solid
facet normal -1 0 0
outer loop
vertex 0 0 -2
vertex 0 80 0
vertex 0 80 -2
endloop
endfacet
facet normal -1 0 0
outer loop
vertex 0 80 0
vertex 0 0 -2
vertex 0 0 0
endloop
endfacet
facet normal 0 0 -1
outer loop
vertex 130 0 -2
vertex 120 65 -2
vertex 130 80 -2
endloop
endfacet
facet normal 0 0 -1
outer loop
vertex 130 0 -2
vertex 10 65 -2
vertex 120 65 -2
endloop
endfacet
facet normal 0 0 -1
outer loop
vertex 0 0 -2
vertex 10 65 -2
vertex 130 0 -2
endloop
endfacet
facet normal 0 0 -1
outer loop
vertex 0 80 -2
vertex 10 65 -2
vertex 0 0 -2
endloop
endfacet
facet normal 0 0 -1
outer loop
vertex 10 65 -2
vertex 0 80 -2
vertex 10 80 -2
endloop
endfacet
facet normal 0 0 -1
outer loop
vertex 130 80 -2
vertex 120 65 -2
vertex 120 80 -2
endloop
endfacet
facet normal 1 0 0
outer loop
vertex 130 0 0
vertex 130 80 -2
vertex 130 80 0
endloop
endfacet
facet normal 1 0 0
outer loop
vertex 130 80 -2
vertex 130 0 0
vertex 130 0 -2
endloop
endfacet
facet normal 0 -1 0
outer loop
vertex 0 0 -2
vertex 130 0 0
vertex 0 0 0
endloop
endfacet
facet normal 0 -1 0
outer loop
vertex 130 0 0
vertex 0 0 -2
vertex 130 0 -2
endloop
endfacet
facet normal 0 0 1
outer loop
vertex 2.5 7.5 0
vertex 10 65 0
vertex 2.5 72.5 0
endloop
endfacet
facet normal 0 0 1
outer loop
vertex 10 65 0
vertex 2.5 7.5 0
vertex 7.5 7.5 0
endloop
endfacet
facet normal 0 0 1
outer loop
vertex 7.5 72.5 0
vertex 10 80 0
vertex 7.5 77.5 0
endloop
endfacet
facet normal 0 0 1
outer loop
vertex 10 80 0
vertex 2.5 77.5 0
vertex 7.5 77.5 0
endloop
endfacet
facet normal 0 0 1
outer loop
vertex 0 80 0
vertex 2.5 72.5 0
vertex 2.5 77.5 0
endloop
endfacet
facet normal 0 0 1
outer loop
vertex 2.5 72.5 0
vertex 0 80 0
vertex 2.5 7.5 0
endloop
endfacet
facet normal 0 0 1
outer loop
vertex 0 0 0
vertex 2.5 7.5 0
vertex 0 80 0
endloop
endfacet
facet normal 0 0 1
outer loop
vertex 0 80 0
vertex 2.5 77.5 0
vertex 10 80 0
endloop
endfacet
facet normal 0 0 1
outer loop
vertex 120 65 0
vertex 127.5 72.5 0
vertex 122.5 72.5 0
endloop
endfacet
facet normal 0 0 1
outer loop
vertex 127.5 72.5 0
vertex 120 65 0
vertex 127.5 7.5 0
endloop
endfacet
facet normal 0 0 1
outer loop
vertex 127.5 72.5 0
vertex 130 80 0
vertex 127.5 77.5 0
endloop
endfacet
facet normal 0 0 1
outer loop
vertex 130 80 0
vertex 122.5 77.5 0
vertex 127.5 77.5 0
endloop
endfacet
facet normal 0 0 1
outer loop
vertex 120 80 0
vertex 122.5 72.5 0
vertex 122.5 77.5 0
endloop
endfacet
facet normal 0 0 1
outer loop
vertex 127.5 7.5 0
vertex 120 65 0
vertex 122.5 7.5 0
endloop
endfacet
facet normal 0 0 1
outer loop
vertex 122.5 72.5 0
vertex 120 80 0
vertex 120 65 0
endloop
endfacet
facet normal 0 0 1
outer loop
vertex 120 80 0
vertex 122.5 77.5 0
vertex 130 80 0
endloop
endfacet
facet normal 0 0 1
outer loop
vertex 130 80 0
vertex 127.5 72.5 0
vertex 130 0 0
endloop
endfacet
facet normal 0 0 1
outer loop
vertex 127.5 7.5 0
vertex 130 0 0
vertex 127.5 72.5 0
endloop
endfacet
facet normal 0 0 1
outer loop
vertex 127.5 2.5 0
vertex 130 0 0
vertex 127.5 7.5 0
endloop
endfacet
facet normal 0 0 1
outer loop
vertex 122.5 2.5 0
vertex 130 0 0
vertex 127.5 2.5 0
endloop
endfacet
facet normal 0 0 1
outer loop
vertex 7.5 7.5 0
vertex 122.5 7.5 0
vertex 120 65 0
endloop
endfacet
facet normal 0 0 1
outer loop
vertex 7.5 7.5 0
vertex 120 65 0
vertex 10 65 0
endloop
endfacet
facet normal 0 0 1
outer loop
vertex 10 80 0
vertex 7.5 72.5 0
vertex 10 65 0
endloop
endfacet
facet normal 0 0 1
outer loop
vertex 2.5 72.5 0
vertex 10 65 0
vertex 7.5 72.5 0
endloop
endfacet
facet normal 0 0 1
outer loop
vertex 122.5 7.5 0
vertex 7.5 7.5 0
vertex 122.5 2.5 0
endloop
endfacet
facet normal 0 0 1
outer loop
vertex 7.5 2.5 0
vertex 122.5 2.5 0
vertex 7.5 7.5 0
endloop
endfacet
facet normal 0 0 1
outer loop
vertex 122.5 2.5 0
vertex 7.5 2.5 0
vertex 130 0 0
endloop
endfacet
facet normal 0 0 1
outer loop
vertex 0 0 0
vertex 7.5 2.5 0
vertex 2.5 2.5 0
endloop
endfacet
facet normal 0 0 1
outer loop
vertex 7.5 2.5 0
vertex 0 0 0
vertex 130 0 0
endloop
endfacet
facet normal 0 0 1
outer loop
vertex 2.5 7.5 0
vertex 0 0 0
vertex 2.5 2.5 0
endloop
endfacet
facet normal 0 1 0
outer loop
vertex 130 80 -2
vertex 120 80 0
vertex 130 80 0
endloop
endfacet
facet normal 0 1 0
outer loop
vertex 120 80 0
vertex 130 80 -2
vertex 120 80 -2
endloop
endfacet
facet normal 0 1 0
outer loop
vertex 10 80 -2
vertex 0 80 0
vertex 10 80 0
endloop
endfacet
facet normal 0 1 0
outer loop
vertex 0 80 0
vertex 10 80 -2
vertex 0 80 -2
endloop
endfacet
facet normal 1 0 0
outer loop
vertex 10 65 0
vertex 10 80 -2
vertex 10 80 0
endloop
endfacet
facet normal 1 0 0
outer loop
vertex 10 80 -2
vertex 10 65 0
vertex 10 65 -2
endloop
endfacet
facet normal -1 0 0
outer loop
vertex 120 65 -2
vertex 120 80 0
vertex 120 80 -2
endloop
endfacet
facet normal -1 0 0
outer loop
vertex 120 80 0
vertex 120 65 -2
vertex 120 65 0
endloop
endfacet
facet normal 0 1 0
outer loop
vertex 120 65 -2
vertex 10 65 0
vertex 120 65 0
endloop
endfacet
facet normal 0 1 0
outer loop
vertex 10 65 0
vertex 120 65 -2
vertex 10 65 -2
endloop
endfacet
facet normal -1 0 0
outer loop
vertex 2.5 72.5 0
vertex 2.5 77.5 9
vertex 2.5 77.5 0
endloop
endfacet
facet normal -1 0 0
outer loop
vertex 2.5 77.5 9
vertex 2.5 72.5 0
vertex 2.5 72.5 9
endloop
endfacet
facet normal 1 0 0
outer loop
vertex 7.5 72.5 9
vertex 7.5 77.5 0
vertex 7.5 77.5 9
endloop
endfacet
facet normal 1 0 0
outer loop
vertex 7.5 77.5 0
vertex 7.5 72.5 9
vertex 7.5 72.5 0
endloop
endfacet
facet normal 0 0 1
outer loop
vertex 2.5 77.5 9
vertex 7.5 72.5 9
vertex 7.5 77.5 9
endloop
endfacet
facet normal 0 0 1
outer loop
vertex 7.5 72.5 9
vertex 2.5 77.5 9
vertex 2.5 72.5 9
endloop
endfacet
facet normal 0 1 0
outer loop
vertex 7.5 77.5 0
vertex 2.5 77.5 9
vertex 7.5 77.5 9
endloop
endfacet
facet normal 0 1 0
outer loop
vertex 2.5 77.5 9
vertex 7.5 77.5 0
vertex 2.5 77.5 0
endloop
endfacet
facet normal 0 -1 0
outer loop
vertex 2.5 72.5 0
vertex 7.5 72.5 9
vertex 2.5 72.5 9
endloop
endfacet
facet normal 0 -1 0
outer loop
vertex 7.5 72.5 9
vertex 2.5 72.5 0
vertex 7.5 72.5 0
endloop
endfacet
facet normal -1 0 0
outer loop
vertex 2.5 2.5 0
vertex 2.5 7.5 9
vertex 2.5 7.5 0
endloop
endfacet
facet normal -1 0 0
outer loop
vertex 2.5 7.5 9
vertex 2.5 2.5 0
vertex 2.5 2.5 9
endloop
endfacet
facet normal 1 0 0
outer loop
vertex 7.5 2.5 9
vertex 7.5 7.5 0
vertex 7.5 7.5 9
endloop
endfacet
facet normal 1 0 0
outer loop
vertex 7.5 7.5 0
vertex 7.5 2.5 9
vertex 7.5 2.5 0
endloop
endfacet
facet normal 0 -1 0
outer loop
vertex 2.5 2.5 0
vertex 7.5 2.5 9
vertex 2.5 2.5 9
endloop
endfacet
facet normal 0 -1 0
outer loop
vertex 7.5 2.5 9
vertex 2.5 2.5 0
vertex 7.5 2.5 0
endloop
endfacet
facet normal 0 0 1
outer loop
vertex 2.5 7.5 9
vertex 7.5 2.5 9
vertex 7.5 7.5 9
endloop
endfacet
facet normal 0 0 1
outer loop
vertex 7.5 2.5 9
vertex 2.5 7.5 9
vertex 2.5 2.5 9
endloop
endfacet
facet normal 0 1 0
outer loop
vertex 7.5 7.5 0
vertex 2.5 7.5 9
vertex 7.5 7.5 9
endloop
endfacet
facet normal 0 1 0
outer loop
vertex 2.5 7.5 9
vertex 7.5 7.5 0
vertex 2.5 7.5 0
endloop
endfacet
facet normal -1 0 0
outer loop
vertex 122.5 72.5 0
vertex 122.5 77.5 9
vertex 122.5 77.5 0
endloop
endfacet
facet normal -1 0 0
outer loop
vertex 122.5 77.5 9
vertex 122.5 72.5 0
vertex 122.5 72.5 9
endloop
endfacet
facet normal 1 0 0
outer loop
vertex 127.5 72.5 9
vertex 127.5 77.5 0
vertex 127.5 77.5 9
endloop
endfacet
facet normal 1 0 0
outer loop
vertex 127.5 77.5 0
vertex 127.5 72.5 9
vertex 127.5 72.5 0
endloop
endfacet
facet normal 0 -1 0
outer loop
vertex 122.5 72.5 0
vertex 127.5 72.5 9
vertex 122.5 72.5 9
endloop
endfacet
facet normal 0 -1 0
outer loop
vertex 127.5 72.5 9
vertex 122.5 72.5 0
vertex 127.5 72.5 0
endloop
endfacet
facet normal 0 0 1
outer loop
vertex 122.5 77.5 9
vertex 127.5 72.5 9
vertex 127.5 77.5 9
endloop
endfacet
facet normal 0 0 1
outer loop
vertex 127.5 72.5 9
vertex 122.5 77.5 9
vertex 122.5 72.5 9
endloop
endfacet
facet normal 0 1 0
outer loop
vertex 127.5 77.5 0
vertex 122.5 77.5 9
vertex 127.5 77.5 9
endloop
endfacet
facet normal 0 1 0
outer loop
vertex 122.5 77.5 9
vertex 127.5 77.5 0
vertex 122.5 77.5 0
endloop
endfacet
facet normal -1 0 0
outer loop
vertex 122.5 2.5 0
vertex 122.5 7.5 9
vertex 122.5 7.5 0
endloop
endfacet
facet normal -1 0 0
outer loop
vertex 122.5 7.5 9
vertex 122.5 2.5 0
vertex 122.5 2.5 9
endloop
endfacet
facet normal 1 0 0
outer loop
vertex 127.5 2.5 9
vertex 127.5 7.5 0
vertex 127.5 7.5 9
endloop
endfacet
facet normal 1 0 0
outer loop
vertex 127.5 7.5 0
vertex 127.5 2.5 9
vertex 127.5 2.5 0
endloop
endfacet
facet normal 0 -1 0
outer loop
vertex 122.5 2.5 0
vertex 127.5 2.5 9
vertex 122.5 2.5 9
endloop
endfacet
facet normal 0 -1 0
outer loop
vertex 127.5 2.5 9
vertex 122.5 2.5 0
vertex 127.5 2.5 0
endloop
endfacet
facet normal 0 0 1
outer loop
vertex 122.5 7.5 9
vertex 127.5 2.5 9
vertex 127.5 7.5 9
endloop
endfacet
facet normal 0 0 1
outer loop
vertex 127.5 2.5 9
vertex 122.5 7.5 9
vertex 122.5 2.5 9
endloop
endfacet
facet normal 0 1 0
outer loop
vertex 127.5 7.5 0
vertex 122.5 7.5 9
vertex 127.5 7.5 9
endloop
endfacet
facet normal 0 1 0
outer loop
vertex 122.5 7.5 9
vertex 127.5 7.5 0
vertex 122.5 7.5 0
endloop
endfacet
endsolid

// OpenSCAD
 module kistarto(l, w, h){
      rotate([90, 0, 0]) polyhedron(
               points=[[0,0,0], [l,0,0], [l,w,0], [0,w,0], [0,w,h], [l,w,h]],
              faces=[[0,1,2,3],[5,4,3,2],[0,4,5,1],[0,3,4],[5,2,1]]
              );
}
layerDepth=2;
height=80;
width=130;
// nyomtatáshoz mellé tevés
rotate([180]){
translate([0, -80, 0]){
//elenorzeshez 90 megelelve 80 rajta
//    translate([0, 0, 80]){
    //teteje
difference(){
   translate([0, 0, 0])
    cube([width, height, layerDepth]);
    translate([10, 0, 0]) 
    cube([110, 15, layerDepth]);
}
//bal elso
    translate([2.5, 2.5, -9]) cube([5, 5, 10]);
//bal hatso
    translate([2.5, 72.5, -9]) cube([5, 5, 10]);
//jobb elso
    translate([122.5, 2.5, -9]) cube([5, 5, 10]);
//bal elso
    translate([122.5, 72.5, -9]) cube([5, 5, 10]);
}
}
